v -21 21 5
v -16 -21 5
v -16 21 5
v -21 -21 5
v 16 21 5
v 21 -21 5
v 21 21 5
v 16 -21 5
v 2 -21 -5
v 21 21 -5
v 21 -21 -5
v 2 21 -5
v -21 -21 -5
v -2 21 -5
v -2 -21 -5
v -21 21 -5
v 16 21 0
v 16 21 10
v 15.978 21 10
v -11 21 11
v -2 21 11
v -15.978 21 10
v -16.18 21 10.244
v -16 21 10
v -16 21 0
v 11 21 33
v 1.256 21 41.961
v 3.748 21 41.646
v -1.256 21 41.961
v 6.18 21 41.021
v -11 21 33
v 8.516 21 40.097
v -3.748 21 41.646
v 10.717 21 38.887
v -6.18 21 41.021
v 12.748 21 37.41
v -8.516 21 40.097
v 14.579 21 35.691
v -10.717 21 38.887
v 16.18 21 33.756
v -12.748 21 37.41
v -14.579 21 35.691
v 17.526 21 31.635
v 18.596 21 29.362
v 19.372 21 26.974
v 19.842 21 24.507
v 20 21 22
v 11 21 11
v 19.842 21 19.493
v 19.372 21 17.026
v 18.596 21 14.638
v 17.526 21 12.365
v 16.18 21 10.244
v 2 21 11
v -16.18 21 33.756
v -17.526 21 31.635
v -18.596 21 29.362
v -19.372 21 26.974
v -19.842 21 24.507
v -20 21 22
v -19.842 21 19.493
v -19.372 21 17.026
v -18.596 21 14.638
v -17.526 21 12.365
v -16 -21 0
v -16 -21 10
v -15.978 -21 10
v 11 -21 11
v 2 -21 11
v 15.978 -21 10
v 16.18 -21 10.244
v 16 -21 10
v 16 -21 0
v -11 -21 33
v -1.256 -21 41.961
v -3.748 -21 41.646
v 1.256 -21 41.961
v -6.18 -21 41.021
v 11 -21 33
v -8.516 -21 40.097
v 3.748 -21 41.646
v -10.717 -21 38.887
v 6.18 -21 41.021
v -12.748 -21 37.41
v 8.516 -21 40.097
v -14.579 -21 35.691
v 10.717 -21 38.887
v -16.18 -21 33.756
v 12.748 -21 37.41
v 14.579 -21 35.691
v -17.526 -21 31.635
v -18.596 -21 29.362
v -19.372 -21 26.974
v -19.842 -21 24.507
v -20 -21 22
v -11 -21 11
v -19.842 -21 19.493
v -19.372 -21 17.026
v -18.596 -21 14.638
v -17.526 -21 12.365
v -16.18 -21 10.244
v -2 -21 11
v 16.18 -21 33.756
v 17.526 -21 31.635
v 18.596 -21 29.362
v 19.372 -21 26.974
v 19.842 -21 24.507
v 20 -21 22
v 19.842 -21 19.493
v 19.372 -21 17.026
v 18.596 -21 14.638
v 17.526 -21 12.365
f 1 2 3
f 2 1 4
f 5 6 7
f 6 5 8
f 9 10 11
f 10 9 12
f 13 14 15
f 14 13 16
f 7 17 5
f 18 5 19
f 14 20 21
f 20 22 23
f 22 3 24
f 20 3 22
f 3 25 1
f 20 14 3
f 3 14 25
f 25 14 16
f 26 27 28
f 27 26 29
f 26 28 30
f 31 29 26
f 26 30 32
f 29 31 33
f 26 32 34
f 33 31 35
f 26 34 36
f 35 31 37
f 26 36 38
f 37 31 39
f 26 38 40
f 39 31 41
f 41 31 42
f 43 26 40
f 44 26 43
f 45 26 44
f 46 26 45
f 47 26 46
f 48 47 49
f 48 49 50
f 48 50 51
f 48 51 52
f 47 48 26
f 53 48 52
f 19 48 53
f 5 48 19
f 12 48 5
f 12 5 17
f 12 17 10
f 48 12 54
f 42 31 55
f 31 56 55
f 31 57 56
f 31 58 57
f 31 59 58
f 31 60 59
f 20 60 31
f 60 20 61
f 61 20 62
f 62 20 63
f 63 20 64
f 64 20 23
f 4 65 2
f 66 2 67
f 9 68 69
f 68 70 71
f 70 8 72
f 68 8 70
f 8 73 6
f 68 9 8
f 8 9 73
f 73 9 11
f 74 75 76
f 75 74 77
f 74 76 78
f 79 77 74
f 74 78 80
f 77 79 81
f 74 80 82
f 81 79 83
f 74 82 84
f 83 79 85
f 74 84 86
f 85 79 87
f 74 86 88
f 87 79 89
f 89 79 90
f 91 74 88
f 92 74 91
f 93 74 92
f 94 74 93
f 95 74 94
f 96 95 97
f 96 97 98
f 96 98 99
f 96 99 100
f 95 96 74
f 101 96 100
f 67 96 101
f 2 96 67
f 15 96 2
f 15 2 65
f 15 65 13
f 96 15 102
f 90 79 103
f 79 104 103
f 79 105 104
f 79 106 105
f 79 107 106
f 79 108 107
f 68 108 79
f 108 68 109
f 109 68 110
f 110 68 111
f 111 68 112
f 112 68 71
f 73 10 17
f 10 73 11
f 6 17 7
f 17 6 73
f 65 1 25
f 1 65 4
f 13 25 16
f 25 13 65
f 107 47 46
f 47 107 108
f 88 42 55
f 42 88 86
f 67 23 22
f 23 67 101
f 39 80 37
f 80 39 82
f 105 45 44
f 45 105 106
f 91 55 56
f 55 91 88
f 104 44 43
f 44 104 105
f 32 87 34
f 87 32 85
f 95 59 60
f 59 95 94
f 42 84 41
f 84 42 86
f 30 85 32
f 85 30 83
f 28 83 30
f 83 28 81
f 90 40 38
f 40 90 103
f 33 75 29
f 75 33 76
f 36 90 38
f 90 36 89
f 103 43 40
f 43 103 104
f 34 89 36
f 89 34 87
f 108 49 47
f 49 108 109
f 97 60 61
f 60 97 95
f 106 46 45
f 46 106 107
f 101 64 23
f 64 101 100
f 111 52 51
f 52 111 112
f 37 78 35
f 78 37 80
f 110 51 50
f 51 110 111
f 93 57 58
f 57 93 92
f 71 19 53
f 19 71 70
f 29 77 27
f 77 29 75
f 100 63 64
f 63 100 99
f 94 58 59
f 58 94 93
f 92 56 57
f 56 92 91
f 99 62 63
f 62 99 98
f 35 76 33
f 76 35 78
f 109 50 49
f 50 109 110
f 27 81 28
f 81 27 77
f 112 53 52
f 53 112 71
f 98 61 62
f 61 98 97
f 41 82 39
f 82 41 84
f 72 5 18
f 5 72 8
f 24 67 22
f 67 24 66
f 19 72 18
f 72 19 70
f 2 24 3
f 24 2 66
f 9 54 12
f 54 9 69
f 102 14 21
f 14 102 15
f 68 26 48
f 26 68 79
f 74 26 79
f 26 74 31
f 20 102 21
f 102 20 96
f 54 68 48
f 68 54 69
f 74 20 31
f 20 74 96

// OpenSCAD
/* =====================================================================================
 *
 *       Filename:  
 *
 *    Description:  tripod support for 868Mhz Yagi antenna
 *
 *        Version:  1.0
 *        Created:  06 09 2026
 *       Revision:  none
 *       Compiler:  openscad
 *
 *         Author:  Sebastien Chassot (sinux)
 *
 * =====================================================================================
 */


label = "sinux";

Lt = 42;
Hb = 10;

difference(){
  union(){
    base();
    support();
  }
  inner();
}

module support(){
  d1=40; e=5; s=d1-8;
  translate([0,0,22])
    rotate([90,0,0])
      cylinder(h=Lt, d=d1, $fn=50, center=true);
  translate([0,0,(Hb+e)/2])
  cube([s,Lt,e], center=true);
//  cube([8,Lt,Hb+2],center=true);
}


module inner(){
  sq=22;
  cube([4, Lt+1, Hb+15], center=true);
  translate([0,0,22])
    cube([sq,Lt+1,sq], center=true);
}

module base(){

  difference(){
    cube([Lt, Lt, Hb], center=true);

    // slider
    translate([32/2,-(Lt+1)/2,0]){
      rotate([0,45,0]){
        cube([Hb*2, Lt+1, Hb*2]);}}
    rotate([0,0,180])
      translate([32/2,-(Lt+1)/2,0]){
        rotate([0,45,0]){
          cube([Hb*2, Lt+1, Hb*2]);}}
  }
}
